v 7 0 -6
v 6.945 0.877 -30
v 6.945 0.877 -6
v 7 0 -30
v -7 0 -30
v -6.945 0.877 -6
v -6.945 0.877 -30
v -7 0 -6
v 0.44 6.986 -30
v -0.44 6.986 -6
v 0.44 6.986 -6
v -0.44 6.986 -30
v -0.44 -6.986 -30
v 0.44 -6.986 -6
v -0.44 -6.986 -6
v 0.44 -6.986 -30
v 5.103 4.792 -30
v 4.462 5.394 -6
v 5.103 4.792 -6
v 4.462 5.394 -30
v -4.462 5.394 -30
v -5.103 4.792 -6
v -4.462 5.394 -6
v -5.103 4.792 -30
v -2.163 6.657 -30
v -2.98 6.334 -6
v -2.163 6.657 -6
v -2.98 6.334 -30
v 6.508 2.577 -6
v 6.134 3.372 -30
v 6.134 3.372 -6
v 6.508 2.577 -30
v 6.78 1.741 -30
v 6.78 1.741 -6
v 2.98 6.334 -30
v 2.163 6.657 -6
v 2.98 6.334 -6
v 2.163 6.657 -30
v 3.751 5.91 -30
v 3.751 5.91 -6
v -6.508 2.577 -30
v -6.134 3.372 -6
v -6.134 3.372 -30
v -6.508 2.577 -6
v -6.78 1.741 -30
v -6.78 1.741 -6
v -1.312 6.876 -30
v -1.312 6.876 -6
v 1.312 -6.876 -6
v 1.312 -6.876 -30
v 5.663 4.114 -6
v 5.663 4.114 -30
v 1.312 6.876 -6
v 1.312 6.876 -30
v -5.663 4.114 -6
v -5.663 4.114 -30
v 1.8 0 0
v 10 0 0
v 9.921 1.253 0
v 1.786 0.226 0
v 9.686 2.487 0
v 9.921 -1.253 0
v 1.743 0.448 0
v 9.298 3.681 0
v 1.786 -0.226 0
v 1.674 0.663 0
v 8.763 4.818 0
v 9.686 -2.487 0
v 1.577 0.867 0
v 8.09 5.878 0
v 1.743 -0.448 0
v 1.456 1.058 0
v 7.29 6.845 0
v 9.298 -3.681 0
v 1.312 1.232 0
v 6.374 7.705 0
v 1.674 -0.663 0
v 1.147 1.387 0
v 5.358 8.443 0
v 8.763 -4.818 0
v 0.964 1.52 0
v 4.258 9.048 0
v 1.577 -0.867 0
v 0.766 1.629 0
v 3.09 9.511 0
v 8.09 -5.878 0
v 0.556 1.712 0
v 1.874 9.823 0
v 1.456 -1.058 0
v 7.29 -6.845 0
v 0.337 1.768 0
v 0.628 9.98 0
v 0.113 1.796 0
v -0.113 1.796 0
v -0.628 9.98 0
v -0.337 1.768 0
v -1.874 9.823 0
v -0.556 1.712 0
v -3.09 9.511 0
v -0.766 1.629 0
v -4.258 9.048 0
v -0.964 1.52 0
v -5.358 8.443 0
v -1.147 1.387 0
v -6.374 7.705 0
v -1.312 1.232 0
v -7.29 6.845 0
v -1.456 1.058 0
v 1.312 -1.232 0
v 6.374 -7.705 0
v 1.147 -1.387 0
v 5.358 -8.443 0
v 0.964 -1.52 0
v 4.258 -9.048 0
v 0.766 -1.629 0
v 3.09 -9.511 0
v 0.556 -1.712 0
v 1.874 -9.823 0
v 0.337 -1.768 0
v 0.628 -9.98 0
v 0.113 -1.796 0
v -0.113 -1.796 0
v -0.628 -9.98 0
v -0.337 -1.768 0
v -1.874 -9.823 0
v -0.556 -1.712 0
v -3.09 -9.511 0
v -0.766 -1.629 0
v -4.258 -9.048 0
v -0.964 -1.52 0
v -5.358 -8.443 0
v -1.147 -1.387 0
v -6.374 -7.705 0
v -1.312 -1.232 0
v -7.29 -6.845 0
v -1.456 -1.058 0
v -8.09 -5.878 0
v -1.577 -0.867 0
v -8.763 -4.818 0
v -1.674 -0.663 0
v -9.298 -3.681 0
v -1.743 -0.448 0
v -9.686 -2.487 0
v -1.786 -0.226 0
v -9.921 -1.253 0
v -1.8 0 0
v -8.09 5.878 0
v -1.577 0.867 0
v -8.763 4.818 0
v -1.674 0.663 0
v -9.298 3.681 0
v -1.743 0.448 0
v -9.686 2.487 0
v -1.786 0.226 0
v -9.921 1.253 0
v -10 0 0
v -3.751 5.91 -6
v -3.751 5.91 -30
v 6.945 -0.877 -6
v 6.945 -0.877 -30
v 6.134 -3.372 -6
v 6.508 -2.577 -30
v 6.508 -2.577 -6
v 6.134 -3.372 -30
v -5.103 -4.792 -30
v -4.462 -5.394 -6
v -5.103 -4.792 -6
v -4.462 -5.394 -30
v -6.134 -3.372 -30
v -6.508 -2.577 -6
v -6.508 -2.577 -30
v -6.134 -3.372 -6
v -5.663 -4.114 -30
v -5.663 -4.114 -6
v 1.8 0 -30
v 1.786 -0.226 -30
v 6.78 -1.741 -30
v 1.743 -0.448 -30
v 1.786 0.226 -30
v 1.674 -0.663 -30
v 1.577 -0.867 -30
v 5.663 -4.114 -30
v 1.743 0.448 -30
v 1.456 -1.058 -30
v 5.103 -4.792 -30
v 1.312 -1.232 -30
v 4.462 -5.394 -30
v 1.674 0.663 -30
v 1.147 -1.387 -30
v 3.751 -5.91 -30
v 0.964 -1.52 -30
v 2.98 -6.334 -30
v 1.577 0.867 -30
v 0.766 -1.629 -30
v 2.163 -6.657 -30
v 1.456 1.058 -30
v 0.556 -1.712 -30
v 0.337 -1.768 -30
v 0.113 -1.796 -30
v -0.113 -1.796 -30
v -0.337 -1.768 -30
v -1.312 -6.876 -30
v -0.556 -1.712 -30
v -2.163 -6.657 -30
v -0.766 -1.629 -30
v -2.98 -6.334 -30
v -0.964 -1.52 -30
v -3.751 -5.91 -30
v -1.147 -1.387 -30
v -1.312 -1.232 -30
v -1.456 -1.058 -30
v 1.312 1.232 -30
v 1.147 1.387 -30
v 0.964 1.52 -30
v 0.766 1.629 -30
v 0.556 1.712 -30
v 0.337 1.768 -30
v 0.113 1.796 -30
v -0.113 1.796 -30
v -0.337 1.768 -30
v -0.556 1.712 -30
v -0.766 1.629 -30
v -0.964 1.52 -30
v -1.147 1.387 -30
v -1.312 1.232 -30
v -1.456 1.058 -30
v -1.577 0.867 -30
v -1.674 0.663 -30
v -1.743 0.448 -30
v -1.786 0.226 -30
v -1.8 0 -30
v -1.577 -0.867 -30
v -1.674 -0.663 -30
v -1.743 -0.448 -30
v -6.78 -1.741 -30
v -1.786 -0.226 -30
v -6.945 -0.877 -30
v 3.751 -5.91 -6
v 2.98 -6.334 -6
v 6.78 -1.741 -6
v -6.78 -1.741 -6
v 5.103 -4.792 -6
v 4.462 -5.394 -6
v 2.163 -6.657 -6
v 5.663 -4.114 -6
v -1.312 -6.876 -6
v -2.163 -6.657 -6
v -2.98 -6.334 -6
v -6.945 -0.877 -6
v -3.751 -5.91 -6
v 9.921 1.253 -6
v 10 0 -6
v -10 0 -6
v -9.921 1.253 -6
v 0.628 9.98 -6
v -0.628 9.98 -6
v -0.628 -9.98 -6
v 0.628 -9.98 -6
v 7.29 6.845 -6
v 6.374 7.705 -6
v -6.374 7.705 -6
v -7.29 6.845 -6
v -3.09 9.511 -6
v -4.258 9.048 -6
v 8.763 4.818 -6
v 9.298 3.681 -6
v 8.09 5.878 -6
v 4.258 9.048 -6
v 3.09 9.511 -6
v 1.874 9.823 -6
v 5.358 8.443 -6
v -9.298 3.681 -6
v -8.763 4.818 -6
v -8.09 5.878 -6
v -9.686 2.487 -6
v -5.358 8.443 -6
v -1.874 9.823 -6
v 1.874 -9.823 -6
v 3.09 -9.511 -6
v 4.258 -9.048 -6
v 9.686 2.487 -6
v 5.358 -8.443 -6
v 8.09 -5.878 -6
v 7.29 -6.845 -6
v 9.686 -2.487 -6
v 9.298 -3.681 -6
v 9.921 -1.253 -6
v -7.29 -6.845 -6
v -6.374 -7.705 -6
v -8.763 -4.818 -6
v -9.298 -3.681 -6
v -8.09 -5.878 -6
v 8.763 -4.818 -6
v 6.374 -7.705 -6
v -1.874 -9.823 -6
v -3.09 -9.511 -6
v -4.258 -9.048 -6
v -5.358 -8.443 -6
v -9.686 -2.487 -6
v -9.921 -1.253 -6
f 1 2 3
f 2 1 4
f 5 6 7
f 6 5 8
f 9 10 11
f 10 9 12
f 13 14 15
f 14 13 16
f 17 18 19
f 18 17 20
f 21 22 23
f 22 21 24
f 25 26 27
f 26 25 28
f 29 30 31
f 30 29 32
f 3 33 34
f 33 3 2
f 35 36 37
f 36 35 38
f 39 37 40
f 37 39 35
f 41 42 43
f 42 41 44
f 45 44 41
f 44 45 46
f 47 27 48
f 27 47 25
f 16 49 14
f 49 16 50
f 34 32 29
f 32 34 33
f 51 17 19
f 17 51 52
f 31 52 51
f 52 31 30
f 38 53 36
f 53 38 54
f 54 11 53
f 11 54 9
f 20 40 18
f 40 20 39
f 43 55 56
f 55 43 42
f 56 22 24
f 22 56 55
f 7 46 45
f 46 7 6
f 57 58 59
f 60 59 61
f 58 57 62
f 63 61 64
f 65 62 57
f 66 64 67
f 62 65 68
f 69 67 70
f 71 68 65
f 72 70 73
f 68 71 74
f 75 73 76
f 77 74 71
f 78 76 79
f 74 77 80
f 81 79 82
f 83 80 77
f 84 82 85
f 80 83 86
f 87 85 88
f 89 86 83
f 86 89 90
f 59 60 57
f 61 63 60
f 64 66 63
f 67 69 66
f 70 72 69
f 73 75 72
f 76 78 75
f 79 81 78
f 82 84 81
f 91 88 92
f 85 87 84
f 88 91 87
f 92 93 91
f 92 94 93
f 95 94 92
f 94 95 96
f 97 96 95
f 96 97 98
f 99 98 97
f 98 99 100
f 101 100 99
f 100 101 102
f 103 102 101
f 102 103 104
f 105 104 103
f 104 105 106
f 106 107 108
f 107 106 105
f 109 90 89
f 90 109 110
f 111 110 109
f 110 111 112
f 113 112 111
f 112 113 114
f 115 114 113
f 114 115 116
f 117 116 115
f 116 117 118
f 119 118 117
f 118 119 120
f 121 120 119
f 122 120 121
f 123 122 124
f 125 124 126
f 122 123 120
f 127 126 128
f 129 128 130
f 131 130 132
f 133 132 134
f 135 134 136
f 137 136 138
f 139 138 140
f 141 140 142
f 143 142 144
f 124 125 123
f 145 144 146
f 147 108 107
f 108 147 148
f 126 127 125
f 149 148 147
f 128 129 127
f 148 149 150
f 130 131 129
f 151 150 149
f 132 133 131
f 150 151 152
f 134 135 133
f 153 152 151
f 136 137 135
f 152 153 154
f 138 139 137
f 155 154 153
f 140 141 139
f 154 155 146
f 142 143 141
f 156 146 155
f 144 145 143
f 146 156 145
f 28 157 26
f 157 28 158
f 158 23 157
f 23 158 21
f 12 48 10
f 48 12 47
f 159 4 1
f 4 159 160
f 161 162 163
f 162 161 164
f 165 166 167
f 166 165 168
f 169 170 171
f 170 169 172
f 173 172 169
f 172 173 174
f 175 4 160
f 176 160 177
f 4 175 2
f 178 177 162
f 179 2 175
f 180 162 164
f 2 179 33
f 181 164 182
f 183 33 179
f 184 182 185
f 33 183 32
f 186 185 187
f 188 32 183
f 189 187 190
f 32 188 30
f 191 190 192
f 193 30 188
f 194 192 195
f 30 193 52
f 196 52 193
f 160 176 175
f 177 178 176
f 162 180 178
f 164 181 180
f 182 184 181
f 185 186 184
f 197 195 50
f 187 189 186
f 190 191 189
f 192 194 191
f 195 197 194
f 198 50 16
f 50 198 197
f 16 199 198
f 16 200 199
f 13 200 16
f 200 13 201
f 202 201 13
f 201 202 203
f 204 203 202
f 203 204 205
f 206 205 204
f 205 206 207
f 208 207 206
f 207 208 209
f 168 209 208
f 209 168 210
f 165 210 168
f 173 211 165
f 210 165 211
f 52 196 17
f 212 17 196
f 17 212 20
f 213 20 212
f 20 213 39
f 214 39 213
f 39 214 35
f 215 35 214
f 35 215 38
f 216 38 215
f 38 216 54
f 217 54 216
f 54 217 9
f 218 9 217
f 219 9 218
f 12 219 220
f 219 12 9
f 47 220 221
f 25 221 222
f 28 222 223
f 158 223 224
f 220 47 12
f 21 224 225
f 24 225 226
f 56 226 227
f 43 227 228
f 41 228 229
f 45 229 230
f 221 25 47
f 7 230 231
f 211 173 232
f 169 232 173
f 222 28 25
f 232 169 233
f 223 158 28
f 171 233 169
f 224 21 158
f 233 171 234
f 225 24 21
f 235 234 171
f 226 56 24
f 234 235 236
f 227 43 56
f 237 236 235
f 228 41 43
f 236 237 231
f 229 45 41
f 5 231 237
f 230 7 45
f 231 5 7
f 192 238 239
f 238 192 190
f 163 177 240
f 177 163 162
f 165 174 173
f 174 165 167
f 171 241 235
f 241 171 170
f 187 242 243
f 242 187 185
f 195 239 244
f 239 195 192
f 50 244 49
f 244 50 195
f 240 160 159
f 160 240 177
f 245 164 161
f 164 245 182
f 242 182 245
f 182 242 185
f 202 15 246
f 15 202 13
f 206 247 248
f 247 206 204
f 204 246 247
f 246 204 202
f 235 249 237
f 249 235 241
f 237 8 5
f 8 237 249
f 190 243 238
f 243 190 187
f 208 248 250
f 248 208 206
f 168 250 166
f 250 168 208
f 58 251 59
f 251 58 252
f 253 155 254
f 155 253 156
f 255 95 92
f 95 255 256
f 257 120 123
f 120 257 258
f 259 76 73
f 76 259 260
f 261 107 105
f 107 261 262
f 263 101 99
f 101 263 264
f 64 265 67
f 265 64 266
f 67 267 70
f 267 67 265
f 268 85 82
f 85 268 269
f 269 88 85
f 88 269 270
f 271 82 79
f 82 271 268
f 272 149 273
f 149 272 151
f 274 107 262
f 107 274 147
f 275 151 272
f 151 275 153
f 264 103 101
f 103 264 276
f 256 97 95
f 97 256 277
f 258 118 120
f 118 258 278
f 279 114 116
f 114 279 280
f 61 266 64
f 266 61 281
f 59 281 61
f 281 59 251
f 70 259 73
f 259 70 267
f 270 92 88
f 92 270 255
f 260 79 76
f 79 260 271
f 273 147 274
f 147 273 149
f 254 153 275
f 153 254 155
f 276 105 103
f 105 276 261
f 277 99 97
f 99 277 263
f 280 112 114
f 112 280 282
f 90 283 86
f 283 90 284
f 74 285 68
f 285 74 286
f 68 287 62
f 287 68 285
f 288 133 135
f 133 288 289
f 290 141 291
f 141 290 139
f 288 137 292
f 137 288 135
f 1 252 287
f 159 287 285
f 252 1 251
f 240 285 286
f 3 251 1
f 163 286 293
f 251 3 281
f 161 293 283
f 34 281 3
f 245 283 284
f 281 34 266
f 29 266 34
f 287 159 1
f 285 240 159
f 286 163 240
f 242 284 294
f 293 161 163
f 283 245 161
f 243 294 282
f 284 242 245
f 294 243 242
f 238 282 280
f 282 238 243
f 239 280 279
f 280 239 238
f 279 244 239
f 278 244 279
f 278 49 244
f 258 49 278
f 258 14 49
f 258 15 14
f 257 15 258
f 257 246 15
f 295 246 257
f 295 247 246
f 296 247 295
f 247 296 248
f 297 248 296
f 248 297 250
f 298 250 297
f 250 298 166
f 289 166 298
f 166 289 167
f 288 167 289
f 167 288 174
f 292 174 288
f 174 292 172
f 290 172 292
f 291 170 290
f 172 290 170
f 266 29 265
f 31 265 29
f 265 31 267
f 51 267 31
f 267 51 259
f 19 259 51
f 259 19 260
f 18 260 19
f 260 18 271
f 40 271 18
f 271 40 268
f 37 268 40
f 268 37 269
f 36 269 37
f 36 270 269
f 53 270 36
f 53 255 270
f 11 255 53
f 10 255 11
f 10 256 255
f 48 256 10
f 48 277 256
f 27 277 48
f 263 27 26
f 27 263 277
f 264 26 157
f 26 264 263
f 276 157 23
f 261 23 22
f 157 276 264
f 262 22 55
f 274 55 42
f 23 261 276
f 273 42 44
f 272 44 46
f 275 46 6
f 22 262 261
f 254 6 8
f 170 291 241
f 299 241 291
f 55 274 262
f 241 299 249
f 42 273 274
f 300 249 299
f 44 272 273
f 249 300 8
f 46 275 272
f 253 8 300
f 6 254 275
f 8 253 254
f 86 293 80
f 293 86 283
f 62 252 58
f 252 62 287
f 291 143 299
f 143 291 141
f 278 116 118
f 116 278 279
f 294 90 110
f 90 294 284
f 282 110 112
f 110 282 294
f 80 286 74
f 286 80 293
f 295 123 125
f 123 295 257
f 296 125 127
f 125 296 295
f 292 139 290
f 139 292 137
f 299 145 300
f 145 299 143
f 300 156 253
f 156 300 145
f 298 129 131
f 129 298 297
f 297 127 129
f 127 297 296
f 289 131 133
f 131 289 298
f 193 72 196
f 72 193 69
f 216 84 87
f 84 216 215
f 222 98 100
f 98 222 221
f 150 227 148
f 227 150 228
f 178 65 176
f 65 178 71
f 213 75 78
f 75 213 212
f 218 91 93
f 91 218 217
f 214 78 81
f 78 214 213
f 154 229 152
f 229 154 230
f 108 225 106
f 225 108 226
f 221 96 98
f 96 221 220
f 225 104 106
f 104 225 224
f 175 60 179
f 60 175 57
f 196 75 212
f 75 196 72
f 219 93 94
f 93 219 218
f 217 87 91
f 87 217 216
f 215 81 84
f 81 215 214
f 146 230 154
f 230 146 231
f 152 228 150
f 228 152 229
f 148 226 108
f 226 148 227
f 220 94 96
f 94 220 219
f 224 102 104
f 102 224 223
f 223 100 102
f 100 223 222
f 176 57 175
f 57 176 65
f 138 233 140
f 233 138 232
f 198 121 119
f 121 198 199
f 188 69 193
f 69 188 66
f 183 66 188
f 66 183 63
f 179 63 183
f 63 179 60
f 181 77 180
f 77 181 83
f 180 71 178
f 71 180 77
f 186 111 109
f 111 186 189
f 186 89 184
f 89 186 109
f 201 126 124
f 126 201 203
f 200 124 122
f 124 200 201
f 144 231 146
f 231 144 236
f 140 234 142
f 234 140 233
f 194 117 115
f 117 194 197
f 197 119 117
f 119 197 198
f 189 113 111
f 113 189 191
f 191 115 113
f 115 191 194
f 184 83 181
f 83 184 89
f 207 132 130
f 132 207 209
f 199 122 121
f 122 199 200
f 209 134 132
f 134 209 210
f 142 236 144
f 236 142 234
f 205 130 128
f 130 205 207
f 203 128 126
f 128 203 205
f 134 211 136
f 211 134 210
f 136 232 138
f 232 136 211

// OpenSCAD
$fn = 50;


difference() {
	union() {
		translate(v = [0, 0, -30.0000000000]) {
			cylinder(h = 30, r = 7.0000000000);
		}
		translate(v = [0, 0, -6.0000000000]) {
			cylinder(h = 6, r = 10.0000000000);
		}
	}
	union() {
		#translate(v = [0, 0, -30]) {
			cylinder(h = 30, r = 1.8000000000);
		}
	}
}
